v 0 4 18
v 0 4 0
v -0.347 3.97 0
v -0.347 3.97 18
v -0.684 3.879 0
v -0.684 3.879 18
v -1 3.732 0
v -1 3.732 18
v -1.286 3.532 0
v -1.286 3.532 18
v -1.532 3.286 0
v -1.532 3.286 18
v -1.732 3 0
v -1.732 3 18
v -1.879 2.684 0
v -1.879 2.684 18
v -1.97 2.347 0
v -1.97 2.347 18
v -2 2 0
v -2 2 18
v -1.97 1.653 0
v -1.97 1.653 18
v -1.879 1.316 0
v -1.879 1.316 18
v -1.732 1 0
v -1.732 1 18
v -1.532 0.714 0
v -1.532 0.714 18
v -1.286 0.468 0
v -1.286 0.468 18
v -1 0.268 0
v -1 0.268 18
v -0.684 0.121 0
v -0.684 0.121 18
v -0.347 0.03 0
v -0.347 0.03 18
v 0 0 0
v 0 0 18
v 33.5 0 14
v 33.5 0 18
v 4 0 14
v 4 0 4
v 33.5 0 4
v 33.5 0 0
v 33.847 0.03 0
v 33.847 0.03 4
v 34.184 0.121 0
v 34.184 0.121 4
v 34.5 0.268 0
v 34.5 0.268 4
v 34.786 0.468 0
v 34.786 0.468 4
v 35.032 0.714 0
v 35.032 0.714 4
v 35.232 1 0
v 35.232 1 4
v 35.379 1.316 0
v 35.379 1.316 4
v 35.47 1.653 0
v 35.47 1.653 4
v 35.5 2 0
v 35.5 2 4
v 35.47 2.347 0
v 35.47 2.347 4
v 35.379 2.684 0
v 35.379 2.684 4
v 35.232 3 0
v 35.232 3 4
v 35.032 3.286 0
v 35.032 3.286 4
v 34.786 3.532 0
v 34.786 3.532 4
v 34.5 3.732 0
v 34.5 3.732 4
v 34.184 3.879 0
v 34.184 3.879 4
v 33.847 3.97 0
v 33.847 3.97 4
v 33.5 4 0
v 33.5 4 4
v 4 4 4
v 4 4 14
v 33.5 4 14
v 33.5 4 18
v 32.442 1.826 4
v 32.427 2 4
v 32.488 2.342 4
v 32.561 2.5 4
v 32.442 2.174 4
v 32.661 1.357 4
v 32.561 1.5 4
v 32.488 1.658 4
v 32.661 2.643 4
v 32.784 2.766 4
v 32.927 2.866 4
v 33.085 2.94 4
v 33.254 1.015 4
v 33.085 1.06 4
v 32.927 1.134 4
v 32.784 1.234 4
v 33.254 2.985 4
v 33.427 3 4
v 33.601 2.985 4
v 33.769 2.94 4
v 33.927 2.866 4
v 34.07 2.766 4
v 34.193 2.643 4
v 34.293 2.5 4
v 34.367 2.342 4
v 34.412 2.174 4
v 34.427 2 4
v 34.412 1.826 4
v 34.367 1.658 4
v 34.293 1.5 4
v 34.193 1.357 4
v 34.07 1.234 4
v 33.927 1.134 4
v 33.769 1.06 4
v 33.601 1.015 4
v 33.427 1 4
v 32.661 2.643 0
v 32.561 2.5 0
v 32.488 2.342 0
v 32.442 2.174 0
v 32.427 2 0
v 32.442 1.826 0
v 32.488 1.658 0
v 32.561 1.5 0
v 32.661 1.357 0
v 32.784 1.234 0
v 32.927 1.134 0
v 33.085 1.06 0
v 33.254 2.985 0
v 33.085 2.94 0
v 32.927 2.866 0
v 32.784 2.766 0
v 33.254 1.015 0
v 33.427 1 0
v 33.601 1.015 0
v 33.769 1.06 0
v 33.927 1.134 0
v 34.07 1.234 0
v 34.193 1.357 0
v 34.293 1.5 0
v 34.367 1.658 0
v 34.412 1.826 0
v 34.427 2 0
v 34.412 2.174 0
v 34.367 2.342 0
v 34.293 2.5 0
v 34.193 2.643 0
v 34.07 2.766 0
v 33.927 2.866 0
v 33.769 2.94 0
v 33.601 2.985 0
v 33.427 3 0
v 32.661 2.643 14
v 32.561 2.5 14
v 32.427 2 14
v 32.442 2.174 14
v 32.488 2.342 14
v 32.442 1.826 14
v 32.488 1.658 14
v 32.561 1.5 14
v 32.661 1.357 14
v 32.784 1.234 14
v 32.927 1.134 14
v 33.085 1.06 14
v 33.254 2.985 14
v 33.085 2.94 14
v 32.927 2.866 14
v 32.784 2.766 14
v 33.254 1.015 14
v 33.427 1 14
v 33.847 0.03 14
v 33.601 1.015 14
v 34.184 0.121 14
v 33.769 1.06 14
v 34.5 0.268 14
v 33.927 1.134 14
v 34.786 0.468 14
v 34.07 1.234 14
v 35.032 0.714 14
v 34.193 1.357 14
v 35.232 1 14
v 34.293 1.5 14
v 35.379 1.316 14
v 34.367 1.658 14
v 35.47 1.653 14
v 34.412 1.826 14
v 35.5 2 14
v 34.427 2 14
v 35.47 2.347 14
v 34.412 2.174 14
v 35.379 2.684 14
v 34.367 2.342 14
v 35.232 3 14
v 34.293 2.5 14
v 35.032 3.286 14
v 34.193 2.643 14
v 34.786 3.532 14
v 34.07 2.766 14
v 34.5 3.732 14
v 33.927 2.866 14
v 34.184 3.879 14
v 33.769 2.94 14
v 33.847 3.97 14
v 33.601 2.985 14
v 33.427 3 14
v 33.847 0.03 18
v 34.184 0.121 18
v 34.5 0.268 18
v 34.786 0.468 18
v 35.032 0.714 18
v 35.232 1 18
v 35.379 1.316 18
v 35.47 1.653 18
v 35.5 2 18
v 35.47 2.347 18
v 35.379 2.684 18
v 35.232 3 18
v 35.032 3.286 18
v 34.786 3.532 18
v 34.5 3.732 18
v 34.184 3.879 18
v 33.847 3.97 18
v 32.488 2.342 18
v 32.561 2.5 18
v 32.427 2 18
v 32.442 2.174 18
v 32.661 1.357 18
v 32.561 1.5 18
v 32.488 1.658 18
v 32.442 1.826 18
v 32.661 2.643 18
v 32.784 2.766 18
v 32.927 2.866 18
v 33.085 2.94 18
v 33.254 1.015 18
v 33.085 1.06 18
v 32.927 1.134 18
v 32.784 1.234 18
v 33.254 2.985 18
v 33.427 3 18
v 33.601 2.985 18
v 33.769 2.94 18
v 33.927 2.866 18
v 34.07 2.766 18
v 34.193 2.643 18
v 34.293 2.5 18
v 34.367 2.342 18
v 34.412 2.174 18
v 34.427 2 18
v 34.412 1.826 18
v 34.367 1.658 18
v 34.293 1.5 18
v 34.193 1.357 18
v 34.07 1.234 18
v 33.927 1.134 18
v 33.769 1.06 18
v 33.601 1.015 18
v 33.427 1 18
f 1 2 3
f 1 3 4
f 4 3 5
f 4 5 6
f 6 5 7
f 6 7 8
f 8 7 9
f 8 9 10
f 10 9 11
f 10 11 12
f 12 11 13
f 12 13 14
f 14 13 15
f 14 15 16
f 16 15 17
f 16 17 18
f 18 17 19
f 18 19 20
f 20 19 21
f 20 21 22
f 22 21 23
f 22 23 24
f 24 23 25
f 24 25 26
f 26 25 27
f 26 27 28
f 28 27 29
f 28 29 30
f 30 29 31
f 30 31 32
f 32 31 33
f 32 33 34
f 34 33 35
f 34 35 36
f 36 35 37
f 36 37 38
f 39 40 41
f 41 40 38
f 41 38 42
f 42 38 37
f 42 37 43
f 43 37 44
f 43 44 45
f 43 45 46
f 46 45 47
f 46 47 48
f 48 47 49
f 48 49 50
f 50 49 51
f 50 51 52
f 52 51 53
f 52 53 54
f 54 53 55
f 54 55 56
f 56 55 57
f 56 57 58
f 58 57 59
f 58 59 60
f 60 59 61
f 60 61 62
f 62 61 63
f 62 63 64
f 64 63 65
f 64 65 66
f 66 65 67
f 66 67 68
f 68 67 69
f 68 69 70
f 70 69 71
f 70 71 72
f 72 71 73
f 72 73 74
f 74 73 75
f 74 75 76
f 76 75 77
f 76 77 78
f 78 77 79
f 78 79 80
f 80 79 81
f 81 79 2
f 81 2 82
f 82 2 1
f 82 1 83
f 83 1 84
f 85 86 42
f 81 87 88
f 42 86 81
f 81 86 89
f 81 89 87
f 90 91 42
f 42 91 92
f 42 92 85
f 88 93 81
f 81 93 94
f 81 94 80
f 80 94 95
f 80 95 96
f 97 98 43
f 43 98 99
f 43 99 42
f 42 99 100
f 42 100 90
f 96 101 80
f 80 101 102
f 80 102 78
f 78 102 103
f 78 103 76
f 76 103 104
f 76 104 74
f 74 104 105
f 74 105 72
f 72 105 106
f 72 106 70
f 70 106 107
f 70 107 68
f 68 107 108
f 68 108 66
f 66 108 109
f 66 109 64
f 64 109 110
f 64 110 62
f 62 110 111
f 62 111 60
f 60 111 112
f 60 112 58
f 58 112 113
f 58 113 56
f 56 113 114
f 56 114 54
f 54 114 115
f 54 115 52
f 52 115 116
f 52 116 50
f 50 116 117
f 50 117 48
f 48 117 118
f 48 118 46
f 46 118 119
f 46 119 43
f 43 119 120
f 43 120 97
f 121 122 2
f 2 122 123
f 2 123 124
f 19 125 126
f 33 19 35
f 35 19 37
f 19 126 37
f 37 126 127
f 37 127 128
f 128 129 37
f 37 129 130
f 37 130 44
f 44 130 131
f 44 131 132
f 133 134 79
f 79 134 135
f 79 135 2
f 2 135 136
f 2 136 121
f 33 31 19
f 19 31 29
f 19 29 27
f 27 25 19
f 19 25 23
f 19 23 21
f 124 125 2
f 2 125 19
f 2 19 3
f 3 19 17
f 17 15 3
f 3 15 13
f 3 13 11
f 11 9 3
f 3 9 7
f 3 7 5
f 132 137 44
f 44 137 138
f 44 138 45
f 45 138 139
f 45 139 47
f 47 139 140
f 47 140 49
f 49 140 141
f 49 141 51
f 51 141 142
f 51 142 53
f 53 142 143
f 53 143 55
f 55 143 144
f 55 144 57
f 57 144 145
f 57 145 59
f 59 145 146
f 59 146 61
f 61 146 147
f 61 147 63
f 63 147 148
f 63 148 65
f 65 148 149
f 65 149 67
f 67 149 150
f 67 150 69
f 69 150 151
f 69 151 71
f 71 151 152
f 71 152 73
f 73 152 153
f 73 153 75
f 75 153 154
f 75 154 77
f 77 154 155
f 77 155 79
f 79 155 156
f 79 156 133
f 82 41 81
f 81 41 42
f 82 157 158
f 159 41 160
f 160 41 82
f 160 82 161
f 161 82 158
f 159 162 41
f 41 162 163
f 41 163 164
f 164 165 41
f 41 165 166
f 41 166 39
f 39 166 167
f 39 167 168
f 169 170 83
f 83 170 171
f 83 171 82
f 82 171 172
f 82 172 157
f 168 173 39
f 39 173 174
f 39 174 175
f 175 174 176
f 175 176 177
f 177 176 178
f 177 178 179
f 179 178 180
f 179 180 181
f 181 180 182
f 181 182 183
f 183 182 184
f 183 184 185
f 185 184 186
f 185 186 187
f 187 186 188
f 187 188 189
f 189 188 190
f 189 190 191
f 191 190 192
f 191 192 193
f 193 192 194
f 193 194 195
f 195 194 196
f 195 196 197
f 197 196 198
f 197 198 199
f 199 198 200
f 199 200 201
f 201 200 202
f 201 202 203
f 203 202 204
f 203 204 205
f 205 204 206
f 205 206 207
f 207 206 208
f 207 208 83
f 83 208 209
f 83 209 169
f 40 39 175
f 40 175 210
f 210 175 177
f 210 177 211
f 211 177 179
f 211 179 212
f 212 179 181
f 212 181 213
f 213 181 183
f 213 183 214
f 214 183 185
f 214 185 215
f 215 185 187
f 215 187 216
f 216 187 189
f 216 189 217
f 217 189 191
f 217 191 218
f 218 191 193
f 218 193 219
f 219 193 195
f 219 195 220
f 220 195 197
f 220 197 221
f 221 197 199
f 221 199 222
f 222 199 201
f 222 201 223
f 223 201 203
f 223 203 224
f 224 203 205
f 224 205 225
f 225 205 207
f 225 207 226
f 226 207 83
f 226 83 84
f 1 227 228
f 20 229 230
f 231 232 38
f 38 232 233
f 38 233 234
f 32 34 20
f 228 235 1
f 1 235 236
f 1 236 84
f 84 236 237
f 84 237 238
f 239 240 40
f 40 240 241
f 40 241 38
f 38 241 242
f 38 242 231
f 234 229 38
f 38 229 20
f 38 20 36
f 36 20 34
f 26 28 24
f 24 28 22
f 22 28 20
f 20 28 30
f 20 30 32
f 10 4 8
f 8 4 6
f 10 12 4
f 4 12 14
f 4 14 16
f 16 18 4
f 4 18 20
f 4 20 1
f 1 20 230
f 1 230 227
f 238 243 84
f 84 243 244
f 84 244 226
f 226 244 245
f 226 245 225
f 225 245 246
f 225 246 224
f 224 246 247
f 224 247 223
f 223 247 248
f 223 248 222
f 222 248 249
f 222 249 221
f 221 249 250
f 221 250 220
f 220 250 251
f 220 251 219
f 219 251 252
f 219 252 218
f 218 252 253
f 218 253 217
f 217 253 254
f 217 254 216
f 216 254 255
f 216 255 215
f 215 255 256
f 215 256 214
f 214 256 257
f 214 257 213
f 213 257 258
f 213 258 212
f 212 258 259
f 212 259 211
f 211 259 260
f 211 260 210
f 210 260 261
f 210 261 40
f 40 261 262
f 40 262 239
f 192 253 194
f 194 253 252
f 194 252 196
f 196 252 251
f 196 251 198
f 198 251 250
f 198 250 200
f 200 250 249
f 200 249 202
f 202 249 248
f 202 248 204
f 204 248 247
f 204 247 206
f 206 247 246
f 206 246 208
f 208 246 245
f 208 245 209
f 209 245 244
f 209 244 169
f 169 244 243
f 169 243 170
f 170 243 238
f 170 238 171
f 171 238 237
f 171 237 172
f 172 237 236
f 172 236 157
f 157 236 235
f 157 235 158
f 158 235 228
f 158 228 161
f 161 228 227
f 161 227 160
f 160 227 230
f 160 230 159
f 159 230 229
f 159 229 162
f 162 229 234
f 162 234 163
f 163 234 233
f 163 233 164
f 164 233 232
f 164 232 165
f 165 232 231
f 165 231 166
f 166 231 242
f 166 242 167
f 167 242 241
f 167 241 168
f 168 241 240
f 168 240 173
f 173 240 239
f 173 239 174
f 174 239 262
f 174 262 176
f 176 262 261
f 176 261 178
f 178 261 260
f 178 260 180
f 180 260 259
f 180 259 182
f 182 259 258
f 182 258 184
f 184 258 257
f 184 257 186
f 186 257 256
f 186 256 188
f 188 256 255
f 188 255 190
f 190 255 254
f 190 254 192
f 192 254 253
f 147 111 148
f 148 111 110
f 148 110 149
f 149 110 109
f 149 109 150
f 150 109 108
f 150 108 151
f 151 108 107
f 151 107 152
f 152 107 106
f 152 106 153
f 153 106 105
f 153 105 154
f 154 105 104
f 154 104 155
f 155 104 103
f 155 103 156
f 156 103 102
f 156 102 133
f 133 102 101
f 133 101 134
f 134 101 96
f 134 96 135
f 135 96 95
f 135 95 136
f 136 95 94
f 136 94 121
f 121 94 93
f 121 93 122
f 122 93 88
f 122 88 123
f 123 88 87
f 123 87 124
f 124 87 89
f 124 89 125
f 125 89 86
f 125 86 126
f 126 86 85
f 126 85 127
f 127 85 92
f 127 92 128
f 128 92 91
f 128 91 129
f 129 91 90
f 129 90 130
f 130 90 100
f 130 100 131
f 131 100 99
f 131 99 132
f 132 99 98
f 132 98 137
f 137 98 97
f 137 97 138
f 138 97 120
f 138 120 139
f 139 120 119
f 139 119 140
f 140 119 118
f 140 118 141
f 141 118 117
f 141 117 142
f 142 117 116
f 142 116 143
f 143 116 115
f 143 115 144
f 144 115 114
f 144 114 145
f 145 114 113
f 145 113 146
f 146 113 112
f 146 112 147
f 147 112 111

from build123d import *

# Parameters (mm, degrees)
BOSS_EXTRUDE1_DEPTH = 4
BOSS_EXTRUDE2_DEPTH = 10
BOSS_EXTRUDE3_DEPTH = 4
SKETCH4_R           = 1
CUT_EXTRUDE4_DEPTH  = 26


with BuildPart() as part:
    # Sketch1 → Boss-Extrude1 (new body)
    with BuildSketch(Plane.XY):
        with BuildLine():
            Line((0, 0), (33.5, 0))
            ThreePointArc((33.5, 0), (35.5, 2), (33.5, 4))
            Line((33.5, 4), (0, 4))
            ThreePointArc((0, 4), (-2, 2), (0, 0))
        make_face()
    extrude(amount=BOSS_EXTRUDE1_DEPTH)

    # Sketch2 → Boss-Extrude2 (add)
    with BuildSketch(Plane.XY.offset(4)):
        with BuildLine():
            Line((4, 0), (0, 0))
            ThreePointArc((0, 0), (-2, 2), (0, 4))
            Line((0, 4), (4, 4))
            Line((4, 4), (4, 0))
        make_face()
    extrude(amount=BOSS_EXTRUDE2_DEPTH)

    # Sketch3 → Boss-Extrude3 (add)
    with BuildSketch(Plane.XY.offset(14)):
        with BuildLine():
            Line((0, 4), (33.5, 4))
            ThreePointArc((33.5, 4), (35.5, 2), (33.5, 0))
            Line((33.5, 0), (0, 0))
            ThreePointArc((0, 0), (-2, 2), (0, 4))
        make_face()
    extrude(amount=BOSS_EXTRUDE3_DEPTH)

    # Sketch4 → Cut-Extrude4 (cut)
    with BuildSketch(Plane.XY.offset(18)):
        with Locations((33.427257806, 2)):
            Circle(SKETCH4_R)
    extrude(amount=-CUT_EXTRUDE4_DEPTH, mode=Mode.SUBTRACT)


solid = part.part
